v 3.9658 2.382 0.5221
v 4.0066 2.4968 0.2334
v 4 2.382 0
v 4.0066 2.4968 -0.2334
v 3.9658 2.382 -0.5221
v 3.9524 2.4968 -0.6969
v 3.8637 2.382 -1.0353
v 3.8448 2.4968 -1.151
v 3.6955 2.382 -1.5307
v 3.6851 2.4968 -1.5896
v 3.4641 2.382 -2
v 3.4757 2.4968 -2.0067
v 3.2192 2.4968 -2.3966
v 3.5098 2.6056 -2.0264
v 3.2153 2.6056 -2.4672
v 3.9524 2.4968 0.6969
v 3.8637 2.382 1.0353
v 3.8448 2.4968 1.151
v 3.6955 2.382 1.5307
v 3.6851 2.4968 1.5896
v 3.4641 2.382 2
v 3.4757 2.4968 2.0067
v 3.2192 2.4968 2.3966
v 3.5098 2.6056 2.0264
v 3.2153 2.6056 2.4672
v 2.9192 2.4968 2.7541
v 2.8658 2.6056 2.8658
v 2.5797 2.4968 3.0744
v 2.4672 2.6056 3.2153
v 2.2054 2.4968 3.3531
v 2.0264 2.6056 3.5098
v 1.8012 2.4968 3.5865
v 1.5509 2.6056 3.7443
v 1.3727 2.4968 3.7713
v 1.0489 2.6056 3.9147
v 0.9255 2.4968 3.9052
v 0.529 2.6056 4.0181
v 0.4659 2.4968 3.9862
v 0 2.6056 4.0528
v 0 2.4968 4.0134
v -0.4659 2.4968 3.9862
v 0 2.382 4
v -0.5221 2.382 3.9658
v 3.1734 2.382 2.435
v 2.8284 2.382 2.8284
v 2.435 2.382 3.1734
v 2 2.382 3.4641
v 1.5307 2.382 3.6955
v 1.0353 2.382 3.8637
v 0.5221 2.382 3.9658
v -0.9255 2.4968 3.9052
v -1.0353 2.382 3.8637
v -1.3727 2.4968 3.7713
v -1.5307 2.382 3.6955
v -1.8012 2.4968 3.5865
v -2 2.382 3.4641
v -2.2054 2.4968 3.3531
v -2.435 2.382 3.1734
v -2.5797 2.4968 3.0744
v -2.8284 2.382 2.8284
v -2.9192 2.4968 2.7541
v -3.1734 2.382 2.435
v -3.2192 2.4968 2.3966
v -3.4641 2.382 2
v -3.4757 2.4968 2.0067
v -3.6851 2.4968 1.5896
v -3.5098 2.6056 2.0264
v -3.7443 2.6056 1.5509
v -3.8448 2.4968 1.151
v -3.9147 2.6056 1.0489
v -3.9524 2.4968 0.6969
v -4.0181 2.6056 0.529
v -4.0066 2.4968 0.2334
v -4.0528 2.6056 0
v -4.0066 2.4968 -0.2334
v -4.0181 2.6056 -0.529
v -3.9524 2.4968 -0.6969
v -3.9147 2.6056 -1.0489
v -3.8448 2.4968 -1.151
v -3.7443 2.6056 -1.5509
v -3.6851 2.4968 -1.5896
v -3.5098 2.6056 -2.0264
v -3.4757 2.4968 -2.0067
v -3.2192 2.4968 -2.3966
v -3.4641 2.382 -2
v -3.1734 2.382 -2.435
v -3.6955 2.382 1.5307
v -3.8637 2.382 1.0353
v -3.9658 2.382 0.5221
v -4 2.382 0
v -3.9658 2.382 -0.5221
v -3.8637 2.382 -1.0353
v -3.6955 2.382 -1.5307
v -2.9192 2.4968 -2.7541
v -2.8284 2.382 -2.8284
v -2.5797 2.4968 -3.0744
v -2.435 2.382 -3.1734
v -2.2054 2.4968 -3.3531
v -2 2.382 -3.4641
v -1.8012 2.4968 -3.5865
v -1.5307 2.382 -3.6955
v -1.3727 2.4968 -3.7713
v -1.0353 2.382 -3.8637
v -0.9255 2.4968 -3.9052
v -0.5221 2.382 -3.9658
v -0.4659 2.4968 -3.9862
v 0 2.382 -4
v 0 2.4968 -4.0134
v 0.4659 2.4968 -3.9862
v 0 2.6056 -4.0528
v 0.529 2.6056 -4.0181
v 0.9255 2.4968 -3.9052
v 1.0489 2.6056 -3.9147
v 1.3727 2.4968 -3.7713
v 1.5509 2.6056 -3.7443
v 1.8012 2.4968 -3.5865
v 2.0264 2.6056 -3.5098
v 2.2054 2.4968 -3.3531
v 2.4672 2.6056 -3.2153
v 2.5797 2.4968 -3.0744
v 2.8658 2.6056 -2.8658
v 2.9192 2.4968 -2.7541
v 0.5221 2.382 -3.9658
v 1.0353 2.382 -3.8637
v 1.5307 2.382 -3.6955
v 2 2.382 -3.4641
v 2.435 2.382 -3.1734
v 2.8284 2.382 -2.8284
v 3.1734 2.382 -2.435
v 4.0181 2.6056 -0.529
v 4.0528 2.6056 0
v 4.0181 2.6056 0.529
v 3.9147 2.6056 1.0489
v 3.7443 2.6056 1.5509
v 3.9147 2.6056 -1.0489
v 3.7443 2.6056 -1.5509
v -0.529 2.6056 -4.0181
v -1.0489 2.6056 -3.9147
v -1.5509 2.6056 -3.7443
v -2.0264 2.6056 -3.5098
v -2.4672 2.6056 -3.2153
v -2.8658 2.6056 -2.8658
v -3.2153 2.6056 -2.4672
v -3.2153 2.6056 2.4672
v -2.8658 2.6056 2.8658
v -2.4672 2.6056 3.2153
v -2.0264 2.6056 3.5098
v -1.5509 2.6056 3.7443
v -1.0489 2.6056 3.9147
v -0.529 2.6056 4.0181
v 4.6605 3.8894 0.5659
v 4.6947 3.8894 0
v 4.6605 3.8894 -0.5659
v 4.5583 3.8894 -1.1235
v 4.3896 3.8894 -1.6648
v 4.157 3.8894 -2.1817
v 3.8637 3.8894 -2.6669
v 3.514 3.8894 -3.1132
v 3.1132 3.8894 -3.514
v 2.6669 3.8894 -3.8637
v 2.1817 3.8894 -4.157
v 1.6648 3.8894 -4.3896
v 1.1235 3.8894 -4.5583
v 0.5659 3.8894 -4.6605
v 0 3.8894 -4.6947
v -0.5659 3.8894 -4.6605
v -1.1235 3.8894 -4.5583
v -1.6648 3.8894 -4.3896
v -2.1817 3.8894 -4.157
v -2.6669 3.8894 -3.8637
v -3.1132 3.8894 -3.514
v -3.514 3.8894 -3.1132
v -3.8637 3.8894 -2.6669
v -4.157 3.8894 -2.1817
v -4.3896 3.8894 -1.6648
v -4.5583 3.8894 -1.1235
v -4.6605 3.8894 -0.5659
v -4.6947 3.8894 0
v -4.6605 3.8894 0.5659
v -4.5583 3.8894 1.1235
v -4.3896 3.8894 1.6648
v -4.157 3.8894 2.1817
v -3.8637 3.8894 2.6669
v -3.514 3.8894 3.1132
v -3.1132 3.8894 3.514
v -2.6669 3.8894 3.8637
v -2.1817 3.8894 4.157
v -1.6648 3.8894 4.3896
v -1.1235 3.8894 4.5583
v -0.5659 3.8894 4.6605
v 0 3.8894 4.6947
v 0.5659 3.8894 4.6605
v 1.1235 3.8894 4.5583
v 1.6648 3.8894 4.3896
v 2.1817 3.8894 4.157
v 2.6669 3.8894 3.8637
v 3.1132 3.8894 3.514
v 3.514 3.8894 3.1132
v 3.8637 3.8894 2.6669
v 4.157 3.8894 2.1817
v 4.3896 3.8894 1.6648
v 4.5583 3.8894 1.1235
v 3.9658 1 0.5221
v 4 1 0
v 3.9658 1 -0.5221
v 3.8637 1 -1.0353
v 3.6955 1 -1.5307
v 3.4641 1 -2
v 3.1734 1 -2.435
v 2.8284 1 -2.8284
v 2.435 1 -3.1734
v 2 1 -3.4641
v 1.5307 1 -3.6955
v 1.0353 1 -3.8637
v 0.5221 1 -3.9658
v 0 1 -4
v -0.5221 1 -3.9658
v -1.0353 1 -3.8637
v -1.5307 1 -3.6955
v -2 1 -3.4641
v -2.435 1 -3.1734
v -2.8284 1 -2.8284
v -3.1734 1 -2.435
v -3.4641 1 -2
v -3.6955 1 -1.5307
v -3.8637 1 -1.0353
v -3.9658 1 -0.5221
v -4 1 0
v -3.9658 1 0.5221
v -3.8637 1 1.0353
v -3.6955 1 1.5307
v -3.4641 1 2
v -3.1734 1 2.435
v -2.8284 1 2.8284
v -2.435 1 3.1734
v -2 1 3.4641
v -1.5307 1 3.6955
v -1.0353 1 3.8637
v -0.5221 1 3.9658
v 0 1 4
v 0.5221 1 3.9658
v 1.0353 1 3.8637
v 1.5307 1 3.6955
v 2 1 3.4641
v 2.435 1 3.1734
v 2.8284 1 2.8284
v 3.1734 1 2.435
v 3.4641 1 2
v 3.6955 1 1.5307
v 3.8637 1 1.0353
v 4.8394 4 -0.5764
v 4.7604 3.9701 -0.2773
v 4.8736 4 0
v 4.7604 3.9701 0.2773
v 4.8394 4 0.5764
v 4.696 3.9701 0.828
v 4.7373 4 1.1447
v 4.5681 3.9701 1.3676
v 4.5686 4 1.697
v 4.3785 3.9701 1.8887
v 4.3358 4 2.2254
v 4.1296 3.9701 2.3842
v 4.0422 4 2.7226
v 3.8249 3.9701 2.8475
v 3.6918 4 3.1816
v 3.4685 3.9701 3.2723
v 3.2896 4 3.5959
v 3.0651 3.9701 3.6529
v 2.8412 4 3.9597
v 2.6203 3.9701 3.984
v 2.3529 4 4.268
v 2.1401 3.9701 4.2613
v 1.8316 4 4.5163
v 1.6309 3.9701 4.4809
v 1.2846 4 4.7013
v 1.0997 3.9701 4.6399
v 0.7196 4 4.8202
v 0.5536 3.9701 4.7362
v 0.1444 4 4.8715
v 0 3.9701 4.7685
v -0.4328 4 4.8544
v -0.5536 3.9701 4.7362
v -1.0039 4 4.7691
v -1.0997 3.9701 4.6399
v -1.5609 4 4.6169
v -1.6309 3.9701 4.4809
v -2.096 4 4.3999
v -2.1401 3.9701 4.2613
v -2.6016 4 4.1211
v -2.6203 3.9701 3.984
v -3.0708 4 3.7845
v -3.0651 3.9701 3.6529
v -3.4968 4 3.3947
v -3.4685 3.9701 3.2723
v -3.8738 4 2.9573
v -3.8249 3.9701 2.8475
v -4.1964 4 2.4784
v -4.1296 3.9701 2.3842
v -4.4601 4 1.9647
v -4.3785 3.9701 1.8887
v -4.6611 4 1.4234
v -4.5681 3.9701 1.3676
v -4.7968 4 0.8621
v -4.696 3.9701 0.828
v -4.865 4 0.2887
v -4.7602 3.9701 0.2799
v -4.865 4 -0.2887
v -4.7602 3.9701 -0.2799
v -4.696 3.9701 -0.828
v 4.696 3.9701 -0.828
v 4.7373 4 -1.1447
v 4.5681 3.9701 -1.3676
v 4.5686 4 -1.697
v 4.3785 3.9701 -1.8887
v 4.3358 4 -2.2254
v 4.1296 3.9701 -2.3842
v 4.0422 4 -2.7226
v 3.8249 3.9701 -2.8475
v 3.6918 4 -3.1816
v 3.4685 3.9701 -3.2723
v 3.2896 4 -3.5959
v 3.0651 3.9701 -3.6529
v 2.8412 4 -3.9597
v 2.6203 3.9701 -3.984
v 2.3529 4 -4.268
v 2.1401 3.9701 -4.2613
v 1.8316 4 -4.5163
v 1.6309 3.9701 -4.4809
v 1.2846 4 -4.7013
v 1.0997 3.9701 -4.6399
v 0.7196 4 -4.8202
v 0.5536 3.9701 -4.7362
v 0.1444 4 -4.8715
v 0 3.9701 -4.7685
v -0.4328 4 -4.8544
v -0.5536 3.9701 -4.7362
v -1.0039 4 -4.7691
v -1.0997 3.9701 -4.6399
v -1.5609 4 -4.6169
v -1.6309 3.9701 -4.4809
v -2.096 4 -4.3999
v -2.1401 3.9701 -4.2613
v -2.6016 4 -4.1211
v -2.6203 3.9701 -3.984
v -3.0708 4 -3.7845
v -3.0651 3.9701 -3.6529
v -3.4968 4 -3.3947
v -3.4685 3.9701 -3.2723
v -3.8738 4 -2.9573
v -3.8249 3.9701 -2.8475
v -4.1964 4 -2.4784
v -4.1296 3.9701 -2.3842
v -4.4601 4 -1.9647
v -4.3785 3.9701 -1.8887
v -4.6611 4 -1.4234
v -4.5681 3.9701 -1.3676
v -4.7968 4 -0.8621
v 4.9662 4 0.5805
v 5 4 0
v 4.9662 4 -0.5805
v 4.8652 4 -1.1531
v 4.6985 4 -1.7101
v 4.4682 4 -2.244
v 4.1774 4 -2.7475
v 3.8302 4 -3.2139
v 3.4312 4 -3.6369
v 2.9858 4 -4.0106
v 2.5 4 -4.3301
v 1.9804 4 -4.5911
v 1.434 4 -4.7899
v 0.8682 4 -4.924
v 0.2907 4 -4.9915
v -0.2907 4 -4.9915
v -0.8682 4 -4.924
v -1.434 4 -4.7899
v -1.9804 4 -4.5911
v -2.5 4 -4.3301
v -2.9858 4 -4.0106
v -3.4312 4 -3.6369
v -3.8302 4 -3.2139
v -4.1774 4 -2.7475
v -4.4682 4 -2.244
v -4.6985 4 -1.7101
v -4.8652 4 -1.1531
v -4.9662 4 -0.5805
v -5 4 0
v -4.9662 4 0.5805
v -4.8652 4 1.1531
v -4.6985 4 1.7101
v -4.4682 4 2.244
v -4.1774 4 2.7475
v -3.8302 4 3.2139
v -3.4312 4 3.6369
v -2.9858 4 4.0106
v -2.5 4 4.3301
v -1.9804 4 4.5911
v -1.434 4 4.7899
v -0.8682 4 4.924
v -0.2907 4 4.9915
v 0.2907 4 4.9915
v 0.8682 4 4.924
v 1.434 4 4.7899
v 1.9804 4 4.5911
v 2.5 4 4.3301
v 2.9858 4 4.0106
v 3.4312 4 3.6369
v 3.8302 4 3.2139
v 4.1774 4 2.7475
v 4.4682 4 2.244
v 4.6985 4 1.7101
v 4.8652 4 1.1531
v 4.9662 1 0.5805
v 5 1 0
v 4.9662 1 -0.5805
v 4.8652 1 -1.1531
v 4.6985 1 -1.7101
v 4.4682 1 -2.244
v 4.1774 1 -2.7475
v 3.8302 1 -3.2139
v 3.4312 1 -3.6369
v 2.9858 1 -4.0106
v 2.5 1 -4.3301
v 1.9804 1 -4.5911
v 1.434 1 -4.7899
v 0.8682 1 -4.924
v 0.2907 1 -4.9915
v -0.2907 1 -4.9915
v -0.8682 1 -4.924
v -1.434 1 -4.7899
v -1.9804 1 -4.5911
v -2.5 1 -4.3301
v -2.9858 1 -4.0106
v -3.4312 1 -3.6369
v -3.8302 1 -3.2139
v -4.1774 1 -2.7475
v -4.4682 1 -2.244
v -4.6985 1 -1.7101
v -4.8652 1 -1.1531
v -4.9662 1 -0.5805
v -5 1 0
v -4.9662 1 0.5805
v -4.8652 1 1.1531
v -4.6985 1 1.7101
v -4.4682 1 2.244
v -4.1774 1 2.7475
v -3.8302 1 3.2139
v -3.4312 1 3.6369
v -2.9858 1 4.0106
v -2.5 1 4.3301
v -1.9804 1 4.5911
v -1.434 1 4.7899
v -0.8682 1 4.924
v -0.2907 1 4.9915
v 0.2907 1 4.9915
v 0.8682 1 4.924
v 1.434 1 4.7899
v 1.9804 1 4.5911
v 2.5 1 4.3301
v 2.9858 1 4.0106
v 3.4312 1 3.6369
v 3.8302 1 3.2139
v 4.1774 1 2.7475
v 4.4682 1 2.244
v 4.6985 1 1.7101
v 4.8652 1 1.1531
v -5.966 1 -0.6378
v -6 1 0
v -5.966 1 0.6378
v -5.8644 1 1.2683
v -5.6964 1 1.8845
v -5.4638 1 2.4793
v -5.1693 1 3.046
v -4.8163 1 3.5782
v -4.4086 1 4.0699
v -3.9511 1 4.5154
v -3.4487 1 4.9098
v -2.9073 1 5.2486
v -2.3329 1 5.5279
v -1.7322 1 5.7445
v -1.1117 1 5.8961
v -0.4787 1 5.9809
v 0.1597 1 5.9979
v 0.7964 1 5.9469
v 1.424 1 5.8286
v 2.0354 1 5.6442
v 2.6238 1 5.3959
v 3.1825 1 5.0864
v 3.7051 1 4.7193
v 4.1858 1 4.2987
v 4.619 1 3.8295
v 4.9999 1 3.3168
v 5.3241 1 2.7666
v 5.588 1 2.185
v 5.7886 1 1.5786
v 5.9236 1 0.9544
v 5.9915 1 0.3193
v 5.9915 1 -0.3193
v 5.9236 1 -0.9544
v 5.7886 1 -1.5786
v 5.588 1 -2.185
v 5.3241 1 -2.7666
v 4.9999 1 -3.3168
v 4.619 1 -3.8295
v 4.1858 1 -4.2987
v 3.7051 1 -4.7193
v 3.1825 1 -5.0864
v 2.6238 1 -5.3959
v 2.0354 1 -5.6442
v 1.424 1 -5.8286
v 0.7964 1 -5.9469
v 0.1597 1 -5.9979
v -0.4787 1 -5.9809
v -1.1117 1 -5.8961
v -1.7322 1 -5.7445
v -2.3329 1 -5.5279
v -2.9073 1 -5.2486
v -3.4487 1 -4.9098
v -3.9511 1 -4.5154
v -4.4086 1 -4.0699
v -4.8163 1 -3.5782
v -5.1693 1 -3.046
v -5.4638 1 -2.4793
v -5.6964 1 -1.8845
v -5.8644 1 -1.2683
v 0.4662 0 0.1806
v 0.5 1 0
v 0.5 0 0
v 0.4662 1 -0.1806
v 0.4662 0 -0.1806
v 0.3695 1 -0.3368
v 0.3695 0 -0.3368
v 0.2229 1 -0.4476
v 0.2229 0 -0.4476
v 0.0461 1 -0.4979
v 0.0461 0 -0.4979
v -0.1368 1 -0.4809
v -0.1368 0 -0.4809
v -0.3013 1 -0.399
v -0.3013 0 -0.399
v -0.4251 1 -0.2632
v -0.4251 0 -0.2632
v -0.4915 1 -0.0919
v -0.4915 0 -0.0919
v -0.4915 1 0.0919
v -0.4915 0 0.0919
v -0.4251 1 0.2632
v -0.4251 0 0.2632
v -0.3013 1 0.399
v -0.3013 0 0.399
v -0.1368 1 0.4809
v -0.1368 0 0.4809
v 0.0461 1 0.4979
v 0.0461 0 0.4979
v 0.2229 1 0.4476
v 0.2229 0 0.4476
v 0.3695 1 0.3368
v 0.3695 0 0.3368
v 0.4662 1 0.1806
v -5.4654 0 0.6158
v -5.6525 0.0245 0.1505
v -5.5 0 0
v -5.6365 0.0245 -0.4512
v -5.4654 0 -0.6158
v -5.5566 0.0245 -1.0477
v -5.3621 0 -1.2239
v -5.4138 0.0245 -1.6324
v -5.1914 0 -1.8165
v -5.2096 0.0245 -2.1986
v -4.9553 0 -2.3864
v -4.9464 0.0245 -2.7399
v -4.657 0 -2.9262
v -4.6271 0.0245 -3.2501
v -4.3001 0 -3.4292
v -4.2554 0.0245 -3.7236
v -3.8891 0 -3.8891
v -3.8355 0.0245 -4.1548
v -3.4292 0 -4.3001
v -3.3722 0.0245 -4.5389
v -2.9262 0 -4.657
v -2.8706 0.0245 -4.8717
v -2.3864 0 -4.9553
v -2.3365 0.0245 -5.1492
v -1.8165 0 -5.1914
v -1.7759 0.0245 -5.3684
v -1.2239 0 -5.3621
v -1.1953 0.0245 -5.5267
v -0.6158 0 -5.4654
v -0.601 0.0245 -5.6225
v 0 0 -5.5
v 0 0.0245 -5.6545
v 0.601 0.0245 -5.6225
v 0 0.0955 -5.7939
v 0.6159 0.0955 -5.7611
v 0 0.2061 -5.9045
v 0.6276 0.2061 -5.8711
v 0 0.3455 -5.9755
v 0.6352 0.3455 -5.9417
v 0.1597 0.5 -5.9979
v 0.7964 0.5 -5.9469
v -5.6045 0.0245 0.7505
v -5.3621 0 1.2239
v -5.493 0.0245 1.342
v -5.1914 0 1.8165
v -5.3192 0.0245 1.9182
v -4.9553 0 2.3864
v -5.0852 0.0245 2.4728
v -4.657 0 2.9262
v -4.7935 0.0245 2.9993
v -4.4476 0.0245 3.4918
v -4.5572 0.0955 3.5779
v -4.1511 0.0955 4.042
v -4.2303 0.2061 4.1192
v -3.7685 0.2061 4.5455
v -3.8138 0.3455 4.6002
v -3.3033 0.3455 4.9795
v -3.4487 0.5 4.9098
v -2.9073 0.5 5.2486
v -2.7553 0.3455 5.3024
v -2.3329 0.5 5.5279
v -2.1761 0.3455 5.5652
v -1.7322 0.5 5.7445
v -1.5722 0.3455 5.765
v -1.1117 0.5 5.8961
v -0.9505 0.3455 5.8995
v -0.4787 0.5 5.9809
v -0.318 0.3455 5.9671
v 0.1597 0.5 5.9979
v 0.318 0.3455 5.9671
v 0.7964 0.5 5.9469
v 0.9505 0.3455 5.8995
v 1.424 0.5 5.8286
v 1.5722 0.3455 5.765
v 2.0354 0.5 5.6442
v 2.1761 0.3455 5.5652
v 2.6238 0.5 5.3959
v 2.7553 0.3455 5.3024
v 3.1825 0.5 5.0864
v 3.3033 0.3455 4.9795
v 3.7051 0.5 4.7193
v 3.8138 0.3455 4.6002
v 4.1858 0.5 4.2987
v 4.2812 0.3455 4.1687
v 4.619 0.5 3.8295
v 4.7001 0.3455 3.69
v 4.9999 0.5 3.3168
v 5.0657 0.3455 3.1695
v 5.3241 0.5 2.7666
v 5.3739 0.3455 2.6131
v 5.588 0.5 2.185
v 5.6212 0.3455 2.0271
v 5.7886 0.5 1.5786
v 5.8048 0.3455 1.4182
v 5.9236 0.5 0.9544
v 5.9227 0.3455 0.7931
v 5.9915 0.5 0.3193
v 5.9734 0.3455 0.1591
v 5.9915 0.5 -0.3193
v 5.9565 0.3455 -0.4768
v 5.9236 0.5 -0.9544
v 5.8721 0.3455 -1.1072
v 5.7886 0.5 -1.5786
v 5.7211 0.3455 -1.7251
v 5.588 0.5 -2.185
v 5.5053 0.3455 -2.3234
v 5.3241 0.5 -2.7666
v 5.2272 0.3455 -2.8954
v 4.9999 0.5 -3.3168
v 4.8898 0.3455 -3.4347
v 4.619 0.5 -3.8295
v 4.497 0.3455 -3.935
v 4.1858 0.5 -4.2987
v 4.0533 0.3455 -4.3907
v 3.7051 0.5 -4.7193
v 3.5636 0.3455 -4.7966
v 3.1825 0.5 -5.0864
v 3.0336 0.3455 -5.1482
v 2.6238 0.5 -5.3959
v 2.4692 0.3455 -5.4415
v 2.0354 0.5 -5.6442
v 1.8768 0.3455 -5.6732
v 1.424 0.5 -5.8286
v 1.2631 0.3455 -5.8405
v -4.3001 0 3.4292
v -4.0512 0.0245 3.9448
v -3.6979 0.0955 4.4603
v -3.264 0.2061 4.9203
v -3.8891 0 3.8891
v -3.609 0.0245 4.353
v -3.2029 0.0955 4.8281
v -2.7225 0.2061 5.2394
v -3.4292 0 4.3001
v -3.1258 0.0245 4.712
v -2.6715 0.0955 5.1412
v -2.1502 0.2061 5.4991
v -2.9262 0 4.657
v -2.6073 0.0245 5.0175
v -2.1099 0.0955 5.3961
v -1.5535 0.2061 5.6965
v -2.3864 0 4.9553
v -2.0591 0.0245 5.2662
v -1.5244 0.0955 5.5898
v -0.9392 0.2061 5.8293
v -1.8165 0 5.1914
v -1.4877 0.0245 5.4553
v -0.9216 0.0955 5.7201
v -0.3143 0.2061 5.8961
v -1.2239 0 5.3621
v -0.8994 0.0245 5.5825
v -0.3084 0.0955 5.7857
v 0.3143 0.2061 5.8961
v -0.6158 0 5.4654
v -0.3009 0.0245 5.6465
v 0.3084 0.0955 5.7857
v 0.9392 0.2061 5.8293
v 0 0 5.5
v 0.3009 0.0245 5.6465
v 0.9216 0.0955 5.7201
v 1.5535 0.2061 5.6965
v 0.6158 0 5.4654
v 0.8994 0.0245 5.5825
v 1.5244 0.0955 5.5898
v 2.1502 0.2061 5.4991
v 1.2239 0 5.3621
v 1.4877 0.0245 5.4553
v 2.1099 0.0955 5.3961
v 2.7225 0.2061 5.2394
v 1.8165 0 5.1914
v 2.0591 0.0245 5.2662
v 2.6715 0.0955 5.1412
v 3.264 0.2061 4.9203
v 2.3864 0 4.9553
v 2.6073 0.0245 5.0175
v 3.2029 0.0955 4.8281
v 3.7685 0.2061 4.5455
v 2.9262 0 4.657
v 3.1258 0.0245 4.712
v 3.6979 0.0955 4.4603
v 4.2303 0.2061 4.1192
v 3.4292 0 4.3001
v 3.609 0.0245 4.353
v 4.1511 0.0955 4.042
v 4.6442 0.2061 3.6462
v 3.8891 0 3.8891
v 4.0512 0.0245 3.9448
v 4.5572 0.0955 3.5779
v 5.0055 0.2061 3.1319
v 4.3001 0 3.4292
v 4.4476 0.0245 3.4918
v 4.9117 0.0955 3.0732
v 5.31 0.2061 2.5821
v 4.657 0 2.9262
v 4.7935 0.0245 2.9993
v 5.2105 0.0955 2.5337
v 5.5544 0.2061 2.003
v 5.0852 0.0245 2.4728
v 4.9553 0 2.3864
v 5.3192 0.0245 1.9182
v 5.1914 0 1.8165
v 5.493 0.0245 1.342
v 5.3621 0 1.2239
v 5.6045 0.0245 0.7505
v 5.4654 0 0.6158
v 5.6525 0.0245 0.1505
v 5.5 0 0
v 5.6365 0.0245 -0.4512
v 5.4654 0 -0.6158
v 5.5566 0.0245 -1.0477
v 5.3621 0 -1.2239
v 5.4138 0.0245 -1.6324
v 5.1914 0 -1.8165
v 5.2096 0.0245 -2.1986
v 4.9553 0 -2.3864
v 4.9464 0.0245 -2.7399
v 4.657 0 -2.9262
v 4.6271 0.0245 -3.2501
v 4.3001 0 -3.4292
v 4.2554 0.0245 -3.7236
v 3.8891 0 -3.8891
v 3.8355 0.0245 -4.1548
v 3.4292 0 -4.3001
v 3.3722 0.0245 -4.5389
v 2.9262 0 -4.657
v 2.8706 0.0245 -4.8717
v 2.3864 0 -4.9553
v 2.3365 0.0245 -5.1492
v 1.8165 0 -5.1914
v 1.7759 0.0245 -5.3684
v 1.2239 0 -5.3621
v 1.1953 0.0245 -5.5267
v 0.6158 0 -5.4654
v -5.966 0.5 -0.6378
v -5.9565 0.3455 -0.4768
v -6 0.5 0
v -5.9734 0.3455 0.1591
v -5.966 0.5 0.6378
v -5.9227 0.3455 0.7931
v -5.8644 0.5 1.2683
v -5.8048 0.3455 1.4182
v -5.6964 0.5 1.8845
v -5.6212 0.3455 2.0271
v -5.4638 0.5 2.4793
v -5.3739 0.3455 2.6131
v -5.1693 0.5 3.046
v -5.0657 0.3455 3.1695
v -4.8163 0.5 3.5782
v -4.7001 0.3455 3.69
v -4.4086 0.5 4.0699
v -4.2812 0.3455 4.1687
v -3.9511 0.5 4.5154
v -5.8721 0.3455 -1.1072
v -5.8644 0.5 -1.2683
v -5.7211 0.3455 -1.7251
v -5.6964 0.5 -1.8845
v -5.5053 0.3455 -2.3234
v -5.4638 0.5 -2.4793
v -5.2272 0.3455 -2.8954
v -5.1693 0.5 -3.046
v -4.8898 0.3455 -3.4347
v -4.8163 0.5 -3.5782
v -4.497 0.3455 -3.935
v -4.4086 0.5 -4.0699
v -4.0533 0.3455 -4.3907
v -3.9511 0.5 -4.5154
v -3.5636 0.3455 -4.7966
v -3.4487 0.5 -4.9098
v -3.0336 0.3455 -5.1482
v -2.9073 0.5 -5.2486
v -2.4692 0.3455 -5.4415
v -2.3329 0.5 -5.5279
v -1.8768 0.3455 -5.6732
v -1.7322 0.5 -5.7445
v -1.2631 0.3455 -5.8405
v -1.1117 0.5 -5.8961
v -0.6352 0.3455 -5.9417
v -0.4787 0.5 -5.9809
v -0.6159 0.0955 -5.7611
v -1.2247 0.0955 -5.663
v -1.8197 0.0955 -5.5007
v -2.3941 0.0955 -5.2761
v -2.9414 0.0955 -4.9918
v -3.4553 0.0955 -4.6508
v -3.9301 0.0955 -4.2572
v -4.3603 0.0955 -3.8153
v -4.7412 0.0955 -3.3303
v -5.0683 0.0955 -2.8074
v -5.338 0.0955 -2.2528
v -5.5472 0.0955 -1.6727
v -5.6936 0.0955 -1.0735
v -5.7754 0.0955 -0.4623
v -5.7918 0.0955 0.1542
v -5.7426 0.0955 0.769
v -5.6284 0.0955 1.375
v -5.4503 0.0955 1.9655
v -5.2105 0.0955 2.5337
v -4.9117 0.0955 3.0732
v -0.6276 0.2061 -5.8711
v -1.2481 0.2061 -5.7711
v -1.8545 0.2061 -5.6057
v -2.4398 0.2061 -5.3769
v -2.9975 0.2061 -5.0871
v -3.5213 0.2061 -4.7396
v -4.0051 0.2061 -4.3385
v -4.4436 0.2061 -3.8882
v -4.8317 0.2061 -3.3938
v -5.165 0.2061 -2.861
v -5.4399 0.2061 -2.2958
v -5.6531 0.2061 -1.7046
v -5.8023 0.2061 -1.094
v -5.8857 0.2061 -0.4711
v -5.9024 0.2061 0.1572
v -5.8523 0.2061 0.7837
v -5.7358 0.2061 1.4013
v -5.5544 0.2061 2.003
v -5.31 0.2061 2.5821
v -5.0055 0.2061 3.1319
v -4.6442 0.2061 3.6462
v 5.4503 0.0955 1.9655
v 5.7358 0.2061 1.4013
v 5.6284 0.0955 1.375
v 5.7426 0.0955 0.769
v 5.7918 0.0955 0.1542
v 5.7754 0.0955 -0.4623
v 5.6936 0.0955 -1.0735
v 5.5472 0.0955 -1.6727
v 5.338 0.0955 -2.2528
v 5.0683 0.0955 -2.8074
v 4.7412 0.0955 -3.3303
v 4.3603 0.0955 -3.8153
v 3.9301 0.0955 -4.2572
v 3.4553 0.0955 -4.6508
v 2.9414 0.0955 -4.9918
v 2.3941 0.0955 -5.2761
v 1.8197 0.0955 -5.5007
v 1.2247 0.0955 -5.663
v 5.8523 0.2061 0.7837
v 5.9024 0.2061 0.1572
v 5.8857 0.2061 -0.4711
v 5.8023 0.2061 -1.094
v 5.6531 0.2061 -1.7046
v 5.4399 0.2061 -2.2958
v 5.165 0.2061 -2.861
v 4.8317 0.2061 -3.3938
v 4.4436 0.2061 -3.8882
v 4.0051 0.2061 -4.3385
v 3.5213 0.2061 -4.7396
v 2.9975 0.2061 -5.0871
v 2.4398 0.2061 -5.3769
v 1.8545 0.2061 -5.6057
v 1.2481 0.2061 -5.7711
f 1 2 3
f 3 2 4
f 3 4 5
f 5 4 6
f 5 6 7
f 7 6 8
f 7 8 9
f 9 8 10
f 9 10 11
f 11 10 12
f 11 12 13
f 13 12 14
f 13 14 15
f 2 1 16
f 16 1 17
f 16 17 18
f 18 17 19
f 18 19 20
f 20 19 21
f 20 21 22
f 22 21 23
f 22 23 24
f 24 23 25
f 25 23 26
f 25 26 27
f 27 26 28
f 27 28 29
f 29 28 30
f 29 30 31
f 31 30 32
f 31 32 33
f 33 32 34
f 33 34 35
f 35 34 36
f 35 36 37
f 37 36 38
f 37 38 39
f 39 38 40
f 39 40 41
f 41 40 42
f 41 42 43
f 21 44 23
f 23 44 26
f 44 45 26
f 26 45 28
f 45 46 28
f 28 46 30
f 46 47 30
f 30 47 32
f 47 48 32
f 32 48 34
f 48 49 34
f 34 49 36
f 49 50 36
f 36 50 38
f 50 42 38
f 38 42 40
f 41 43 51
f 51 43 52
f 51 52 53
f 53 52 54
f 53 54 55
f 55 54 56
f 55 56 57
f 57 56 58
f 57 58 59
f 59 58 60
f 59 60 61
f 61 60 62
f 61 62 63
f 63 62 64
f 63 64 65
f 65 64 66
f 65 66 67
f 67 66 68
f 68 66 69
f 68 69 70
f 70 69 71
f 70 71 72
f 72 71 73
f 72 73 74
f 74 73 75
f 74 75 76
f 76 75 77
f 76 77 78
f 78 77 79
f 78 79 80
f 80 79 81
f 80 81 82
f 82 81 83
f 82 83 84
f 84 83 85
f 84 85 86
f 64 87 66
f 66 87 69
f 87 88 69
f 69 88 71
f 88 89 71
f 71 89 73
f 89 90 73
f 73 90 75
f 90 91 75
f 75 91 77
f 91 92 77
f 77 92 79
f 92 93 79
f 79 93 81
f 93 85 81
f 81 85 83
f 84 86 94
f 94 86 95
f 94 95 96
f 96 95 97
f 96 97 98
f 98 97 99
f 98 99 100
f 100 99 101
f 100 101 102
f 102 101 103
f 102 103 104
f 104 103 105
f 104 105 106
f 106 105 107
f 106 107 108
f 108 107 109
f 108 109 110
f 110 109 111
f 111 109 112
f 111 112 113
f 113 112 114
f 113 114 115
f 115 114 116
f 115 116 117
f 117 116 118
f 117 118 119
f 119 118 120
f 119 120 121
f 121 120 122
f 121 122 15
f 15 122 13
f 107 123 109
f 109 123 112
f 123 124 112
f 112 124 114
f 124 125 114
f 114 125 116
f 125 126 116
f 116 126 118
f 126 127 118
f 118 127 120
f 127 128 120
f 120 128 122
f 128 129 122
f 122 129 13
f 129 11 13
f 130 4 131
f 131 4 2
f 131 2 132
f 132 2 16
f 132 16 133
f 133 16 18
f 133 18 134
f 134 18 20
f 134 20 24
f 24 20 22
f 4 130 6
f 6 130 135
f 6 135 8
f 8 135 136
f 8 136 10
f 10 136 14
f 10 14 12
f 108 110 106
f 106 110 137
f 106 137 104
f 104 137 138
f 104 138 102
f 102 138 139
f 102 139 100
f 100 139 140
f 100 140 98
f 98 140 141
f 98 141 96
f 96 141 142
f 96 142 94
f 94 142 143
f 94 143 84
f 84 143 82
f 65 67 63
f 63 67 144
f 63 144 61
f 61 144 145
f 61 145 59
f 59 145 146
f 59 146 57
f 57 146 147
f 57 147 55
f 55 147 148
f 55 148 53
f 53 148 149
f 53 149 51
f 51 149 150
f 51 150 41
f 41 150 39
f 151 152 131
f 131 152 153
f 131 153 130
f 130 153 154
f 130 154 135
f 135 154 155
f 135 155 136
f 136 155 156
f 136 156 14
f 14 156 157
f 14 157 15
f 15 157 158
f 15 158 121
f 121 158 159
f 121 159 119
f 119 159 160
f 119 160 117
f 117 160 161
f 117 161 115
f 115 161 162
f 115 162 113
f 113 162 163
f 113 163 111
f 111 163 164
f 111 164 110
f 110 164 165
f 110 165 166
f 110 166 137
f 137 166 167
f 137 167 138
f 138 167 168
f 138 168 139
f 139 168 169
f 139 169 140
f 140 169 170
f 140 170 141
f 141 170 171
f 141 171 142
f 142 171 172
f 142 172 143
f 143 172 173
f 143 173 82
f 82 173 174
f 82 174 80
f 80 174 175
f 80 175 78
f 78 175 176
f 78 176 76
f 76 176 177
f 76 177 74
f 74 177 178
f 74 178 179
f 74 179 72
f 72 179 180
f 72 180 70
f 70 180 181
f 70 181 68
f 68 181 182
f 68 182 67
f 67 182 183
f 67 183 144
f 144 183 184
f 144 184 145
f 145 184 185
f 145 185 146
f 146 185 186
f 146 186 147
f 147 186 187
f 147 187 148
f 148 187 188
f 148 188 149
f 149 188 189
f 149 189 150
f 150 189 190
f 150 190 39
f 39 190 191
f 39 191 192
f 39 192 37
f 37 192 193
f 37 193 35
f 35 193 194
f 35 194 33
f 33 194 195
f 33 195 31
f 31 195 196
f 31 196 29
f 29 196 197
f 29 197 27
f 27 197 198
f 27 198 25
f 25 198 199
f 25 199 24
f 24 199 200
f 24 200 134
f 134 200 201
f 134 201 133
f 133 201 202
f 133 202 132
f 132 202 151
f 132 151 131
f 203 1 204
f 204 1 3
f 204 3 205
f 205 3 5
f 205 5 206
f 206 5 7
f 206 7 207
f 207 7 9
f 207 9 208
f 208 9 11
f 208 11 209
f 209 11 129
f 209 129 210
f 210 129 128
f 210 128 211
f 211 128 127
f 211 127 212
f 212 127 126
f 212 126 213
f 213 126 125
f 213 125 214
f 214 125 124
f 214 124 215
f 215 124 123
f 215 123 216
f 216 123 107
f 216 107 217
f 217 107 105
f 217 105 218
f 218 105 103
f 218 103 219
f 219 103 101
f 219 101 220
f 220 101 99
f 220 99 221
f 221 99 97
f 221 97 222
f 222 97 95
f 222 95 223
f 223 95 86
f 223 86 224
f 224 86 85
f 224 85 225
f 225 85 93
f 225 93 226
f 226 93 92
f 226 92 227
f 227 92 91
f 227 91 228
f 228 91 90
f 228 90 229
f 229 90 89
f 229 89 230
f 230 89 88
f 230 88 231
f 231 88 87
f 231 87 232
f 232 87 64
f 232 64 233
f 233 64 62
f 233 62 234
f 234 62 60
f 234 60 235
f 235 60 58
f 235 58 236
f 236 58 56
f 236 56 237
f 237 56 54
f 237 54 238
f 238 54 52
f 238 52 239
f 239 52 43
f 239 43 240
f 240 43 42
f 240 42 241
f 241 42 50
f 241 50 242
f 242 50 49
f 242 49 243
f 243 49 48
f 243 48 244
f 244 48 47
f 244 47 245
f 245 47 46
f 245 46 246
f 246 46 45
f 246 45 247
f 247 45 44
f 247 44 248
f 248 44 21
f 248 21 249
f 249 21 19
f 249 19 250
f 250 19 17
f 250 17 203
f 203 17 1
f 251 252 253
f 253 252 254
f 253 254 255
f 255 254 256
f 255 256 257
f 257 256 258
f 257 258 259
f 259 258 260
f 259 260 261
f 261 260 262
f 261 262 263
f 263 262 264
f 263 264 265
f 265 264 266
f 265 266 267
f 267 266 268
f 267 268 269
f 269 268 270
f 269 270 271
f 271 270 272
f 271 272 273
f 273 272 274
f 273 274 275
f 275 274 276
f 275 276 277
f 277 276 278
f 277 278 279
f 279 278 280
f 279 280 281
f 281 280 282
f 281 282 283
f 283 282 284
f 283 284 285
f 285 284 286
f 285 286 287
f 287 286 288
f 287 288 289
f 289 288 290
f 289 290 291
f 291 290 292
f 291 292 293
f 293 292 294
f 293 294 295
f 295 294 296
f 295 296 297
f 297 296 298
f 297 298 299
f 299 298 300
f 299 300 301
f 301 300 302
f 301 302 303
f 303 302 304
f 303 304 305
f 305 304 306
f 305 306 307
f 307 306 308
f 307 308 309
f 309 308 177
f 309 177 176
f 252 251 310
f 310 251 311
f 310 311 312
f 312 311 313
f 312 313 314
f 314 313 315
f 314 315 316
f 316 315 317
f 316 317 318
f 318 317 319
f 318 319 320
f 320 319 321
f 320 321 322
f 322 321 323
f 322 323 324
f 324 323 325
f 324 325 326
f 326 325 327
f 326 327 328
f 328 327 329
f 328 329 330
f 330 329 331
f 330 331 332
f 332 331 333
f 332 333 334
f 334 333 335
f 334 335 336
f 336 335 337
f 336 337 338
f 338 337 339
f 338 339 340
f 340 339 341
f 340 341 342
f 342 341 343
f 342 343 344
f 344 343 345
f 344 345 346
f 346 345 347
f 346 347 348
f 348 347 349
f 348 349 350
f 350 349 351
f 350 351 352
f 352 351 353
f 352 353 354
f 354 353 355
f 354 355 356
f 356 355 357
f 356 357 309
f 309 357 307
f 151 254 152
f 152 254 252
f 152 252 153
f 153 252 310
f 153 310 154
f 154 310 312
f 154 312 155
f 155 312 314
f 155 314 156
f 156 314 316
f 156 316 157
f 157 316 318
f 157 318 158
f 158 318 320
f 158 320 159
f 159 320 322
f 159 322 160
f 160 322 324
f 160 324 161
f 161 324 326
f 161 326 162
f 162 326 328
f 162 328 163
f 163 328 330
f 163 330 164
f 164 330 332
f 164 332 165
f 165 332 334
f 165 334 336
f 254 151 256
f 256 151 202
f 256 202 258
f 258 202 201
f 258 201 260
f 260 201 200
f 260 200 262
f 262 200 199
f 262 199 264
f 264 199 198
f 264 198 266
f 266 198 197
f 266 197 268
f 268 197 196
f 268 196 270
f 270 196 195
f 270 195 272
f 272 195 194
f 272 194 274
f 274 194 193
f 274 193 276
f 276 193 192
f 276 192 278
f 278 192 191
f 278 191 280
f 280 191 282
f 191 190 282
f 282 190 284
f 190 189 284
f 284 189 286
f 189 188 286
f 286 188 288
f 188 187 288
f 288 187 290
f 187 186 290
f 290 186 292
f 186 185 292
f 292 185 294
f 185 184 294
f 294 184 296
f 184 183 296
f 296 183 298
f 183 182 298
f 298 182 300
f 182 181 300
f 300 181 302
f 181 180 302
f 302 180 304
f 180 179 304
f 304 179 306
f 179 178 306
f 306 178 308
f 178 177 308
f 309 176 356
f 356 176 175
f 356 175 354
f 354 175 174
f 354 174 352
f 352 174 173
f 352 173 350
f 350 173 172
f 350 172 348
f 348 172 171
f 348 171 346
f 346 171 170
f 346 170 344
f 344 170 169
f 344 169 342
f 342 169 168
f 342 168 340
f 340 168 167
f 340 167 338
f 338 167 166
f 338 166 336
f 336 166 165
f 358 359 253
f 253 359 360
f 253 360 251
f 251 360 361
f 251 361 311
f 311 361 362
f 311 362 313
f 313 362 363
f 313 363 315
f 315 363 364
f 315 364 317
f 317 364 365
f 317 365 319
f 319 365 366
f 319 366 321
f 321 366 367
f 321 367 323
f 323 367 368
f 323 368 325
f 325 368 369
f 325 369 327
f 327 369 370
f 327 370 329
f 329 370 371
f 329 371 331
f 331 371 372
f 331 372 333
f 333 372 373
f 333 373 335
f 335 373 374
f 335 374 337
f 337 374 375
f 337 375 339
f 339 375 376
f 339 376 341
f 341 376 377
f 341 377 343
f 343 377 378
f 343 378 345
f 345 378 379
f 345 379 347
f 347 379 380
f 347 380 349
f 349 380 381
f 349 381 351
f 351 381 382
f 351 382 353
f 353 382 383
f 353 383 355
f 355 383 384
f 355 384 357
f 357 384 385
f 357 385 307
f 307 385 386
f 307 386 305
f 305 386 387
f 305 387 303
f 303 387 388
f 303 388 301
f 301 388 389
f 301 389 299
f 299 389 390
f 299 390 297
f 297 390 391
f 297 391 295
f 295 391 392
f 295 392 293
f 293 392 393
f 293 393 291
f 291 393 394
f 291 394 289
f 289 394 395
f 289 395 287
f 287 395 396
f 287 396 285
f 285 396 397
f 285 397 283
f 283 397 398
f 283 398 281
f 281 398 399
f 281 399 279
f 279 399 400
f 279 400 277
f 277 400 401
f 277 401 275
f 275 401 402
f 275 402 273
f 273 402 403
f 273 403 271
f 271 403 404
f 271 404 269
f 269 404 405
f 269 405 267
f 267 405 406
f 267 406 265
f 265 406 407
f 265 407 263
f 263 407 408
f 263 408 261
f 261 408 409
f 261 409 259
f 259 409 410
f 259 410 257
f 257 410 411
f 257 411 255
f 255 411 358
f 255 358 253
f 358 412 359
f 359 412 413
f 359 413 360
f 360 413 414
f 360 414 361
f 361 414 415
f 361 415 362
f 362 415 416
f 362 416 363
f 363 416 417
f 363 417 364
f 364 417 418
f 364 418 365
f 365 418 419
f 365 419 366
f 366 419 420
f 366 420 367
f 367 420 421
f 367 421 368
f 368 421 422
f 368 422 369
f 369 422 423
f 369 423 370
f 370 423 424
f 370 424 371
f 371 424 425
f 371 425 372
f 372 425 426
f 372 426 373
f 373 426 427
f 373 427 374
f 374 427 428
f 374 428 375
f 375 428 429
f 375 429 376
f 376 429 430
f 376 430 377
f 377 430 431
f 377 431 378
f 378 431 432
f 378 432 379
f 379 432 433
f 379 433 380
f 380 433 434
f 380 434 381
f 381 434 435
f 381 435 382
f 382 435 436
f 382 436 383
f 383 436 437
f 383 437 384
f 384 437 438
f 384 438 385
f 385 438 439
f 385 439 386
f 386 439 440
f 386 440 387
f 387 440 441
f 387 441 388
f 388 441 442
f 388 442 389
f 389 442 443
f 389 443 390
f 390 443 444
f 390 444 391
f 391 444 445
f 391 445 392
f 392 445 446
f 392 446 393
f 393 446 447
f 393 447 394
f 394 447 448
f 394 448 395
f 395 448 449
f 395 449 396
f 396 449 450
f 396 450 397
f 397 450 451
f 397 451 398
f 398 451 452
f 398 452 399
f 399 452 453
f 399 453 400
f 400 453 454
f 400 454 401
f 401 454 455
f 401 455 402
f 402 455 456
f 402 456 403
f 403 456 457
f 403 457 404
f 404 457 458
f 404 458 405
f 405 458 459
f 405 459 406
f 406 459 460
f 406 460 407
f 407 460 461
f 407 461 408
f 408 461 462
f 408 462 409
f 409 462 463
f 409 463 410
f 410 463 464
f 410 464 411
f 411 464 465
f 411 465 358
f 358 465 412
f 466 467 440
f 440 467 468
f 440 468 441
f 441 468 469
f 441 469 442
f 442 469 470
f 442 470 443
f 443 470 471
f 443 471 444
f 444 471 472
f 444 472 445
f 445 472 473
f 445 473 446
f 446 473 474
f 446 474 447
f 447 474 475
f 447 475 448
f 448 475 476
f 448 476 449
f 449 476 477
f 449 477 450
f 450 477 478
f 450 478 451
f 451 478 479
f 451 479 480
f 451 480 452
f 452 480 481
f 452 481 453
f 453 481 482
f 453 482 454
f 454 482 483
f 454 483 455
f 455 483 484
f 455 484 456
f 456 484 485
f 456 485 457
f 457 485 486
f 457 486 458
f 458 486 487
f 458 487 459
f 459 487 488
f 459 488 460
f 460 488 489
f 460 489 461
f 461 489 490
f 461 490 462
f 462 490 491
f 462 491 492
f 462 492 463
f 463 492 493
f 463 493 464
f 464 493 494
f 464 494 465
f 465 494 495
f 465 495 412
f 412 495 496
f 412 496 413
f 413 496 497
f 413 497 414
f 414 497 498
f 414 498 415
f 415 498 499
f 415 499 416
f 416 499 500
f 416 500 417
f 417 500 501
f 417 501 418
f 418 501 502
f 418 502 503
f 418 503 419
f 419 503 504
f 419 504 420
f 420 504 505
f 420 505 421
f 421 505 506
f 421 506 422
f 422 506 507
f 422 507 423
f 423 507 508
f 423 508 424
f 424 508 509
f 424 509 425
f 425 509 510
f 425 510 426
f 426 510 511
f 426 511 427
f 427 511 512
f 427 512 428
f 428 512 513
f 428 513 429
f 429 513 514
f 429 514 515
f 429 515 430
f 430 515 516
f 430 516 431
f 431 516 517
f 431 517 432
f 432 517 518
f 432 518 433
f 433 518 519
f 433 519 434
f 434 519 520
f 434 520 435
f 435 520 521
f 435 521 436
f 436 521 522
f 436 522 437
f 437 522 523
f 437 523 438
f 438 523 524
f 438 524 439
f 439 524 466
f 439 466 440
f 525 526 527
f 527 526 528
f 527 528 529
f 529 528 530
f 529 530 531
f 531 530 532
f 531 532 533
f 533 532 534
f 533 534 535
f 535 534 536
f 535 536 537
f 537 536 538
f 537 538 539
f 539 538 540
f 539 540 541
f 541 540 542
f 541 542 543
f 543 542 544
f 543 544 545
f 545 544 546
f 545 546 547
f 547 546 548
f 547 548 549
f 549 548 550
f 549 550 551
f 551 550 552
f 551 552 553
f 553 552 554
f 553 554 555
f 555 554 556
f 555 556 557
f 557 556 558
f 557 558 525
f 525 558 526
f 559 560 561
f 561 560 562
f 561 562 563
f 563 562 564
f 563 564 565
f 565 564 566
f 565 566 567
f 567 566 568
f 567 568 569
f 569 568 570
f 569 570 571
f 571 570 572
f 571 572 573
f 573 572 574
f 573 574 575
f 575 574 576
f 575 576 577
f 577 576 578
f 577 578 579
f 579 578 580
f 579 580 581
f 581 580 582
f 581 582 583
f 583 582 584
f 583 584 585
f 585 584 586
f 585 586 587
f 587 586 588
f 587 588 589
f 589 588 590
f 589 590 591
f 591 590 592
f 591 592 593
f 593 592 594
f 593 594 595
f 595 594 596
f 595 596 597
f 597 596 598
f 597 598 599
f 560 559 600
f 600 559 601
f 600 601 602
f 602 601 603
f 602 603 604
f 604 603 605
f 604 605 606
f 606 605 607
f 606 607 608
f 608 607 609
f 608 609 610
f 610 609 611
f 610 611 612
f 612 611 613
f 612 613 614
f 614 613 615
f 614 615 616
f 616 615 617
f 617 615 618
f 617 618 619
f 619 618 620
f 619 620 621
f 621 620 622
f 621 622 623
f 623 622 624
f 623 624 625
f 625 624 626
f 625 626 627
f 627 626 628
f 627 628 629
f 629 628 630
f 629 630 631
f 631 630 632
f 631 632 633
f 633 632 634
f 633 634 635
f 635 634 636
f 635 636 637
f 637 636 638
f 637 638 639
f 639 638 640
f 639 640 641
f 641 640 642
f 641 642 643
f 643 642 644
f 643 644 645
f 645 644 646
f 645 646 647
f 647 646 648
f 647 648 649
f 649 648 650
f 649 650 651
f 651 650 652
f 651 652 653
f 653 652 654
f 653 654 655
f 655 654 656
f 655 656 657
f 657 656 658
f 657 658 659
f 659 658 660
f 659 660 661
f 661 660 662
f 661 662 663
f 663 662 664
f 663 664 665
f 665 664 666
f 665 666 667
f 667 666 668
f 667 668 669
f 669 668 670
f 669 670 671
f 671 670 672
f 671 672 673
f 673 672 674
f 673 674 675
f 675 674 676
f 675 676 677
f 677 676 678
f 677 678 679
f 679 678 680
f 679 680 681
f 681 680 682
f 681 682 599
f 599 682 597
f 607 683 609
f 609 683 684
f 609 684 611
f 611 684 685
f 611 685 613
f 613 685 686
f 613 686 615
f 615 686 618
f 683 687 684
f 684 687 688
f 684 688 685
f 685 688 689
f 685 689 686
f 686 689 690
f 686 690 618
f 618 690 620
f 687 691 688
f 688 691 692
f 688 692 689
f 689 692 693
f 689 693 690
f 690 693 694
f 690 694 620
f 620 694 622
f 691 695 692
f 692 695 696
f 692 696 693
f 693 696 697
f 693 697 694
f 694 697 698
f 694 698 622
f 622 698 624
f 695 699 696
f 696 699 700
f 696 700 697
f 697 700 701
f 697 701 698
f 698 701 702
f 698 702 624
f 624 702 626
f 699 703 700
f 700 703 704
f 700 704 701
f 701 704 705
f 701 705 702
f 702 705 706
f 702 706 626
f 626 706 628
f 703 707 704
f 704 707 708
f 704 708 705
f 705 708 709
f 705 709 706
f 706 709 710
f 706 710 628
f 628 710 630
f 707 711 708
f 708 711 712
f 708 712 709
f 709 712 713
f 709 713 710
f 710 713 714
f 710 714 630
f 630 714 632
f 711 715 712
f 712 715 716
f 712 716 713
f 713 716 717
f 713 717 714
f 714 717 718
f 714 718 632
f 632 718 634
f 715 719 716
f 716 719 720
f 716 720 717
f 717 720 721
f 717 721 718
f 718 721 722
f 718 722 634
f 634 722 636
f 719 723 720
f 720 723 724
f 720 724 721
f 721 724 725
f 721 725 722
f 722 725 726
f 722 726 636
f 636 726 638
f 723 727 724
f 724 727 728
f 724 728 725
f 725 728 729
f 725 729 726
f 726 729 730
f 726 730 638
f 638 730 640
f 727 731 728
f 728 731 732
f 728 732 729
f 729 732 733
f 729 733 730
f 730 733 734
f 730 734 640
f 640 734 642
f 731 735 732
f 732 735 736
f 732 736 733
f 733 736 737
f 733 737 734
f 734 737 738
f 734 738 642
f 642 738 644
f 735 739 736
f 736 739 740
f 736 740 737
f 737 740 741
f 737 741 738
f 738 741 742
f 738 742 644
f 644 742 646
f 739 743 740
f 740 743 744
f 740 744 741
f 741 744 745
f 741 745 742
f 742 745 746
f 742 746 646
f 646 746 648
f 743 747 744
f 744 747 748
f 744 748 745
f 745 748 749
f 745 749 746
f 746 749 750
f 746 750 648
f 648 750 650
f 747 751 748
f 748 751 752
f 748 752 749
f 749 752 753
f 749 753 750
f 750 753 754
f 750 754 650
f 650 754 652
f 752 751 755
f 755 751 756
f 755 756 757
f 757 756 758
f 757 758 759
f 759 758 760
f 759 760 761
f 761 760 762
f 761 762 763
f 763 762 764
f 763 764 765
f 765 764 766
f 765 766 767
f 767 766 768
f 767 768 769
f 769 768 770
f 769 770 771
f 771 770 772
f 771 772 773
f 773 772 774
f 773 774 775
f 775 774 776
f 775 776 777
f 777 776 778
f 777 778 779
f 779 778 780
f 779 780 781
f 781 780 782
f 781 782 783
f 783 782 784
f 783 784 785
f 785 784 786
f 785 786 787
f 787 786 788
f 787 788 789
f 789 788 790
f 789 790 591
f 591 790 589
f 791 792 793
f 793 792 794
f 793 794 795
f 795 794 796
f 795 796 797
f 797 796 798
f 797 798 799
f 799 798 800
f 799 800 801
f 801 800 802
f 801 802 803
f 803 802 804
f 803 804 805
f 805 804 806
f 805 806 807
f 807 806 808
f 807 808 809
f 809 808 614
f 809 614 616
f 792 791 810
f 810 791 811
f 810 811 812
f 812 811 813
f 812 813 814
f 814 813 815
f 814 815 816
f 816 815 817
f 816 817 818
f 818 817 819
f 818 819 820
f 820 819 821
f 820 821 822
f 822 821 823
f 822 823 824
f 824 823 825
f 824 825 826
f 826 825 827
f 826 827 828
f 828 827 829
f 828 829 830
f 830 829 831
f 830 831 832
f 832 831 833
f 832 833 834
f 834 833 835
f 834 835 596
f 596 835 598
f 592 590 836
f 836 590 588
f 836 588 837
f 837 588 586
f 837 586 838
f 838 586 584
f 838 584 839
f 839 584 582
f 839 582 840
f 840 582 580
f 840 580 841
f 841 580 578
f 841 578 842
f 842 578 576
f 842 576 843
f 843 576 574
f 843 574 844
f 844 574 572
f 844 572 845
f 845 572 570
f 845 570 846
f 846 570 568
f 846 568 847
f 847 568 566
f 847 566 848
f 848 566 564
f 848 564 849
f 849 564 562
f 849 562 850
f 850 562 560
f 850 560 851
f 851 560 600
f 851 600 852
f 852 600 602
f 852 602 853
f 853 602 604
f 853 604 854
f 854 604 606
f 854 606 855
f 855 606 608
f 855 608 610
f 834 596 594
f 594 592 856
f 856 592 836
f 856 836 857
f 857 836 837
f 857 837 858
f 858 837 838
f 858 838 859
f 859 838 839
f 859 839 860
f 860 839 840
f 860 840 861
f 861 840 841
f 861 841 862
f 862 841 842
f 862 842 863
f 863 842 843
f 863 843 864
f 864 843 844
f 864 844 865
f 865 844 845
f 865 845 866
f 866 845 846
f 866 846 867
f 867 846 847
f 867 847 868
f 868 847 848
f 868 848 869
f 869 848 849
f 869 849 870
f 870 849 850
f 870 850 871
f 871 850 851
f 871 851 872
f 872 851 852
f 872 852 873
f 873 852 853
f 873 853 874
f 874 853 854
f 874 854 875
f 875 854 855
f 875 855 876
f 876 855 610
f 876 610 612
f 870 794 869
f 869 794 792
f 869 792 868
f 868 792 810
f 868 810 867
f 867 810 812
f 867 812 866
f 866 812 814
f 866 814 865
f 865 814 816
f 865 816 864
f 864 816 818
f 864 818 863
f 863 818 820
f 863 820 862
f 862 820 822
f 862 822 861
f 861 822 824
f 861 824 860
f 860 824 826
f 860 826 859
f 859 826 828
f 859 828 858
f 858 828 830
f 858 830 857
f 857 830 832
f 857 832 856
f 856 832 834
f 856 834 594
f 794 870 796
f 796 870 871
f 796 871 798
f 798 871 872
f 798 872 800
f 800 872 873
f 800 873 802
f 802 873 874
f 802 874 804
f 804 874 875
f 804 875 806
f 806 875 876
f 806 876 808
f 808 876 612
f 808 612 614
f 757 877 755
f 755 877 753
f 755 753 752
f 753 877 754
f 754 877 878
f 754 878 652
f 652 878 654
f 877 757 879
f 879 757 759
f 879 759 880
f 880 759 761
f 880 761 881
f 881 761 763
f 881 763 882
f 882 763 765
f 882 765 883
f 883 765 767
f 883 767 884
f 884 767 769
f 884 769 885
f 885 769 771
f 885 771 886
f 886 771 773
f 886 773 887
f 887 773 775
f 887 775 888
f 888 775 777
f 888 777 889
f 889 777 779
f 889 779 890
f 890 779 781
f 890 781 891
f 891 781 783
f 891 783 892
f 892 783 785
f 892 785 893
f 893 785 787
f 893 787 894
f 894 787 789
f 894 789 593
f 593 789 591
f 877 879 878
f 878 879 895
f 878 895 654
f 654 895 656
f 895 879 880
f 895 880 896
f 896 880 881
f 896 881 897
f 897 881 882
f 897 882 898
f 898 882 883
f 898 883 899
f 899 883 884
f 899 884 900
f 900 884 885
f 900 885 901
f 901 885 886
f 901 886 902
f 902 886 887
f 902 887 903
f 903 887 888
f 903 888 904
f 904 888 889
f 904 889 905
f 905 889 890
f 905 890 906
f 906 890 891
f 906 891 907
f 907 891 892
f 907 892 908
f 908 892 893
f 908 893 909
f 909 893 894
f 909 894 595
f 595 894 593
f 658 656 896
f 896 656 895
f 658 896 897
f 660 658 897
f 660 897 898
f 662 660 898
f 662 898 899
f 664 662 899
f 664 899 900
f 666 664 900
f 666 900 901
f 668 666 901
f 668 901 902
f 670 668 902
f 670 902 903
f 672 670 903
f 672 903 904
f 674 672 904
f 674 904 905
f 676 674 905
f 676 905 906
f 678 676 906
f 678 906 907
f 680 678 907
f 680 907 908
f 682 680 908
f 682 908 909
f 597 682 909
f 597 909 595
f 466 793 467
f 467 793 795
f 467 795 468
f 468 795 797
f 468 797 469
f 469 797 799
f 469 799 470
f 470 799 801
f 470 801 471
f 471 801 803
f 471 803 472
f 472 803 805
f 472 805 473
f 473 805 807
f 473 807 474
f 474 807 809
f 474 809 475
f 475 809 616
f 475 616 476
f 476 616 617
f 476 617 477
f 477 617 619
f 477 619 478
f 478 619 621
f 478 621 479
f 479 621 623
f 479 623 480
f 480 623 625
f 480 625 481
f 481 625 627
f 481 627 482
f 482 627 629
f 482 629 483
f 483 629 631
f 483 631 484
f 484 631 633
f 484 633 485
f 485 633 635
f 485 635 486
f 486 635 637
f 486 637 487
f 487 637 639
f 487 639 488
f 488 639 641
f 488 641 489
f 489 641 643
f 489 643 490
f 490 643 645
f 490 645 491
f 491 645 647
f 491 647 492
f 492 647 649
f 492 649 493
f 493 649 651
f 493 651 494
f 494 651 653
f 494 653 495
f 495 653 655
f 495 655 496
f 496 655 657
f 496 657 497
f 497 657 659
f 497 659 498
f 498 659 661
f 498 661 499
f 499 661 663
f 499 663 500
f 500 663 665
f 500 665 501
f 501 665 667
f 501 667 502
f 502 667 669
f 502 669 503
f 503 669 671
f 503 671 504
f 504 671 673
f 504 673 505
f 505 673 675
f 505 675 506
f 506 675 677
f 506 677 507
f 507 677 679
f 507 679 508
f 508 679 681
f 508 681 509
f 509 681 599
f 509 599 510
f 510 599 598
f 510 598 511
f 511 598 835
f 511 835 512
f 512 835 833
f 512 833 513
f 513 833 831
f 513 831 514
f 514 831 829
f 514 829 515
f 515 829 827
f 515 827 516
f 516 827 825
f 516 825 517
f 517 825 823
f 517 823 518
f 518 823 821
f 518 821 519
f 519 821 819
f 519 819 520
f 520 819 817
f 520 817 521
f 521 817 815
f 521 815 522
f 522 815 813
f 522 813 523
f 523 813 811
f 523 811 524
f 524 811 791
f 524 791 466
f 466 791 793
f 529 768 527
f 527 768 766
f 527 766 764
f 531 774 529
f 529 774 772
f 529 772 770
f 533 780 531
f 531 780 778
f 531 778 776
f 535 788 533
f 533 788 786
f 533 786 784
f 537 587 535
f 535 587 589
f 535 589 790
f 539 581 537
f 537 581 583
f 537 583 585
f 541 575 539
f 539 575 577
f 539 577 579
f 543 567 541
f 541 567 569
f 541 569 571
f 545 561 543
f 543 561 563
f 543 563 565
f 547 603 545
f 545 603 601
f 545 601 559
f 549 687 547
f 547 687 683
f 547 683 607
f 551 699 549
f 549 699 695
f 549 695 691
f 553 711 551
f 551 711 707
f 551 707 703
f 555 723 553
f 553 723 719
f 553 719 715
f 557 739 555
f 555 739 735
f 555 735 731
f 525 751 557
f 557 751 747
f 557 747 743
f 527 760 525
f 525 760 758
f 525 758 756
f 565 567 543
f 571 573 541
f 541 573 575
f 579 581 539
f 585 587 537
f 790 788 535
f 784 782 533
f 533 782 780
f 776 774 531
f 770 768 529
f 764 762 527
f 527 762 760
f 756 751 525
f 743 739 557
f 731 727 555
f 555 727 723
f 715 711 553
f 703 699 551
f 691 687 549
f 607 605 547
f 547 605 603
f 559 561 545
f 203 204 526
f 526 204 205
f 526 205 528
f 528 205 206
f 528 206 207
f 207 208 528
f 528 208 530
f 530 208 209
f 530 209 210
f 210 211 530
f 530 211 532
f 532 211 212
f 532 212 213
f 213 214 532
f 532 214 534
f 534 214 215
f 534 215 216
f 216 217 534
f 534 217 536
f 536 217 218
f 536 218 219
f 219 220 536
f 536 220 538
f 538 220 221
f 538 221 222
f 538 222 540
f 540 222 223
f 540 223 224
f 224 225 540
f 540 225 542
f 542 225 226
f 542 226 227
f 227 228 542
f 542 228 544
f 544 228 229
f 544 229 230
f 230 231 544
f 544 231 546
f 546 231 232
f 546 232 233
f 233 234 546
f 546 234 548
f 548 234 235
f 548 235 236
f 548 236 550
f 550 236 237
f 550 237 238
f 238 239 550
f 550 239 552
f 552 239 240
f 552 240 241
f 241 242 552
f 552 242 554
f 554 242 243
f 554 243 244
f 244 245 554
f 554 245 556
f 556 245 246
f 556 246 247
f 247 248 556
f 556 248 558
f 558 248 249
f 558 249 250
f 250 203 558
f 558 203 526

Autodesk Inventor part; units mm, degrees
ref_plane "YZ Plane" through (0, 0, 0) normal (1, 0, 0) x (0, 1, 0)
ref_plane "XZ Plane" through (0, 0, 0) normal (0, 1, 0) x (-1, 0, 0)
ref_plane "XY Plane" through (0, 0, 0) normal (0, 0, 1) x (1, 0, 0)
sketch "Sketch1" plane through (0, 0, 0) normal (0, 1, 0) x (-1, 0, 0)
  circle A0 centre (0, 0) radius 6
  dimension "d0" = 12
extrude "Extrusion1" add sketch "Sketch1" along normal blind 1
fillet "Fillet1" radius 0.5 1 edges at (6, 0, 0)
sketch "Sketch2" plane through (0, 1, 0) normal (0, 1, 0) x (1, 0, 0)
  circle A0 centre (0, 0) radius 0.5
  dimension "d4" = 1
extrude "Extrusion2" cut sketch "Sketch2" against normal blind 1
sketch "Sketch3" plane through (0, 1, 0) normal (0, 1, 0) x (1, 0, 0)
  circle A0 centre (0, 0) radius 0.5 projected
  circle A1 centre (0, 0) radius 5
  circle A2 centre (0, 0) radius 4
  dimension "d7" = 10
  dimension "d8" = 8
extrude "Extrusion3" add sketch "Sketch3" along normal blind 3 contours A1
chamfer "Chamfer1" distance 0.75 distance2 1.5 1 edges at (-4, 4, 0) measured on face at (4.5795, 4, 0.7179)
fillet "Fillet2" radius 0.2 1 edges at (-4.75, 4, 0)
fillet "Fillet3" radius 0.5 1 edges at (-4, 2.5, 0)
properties part number "tale"
